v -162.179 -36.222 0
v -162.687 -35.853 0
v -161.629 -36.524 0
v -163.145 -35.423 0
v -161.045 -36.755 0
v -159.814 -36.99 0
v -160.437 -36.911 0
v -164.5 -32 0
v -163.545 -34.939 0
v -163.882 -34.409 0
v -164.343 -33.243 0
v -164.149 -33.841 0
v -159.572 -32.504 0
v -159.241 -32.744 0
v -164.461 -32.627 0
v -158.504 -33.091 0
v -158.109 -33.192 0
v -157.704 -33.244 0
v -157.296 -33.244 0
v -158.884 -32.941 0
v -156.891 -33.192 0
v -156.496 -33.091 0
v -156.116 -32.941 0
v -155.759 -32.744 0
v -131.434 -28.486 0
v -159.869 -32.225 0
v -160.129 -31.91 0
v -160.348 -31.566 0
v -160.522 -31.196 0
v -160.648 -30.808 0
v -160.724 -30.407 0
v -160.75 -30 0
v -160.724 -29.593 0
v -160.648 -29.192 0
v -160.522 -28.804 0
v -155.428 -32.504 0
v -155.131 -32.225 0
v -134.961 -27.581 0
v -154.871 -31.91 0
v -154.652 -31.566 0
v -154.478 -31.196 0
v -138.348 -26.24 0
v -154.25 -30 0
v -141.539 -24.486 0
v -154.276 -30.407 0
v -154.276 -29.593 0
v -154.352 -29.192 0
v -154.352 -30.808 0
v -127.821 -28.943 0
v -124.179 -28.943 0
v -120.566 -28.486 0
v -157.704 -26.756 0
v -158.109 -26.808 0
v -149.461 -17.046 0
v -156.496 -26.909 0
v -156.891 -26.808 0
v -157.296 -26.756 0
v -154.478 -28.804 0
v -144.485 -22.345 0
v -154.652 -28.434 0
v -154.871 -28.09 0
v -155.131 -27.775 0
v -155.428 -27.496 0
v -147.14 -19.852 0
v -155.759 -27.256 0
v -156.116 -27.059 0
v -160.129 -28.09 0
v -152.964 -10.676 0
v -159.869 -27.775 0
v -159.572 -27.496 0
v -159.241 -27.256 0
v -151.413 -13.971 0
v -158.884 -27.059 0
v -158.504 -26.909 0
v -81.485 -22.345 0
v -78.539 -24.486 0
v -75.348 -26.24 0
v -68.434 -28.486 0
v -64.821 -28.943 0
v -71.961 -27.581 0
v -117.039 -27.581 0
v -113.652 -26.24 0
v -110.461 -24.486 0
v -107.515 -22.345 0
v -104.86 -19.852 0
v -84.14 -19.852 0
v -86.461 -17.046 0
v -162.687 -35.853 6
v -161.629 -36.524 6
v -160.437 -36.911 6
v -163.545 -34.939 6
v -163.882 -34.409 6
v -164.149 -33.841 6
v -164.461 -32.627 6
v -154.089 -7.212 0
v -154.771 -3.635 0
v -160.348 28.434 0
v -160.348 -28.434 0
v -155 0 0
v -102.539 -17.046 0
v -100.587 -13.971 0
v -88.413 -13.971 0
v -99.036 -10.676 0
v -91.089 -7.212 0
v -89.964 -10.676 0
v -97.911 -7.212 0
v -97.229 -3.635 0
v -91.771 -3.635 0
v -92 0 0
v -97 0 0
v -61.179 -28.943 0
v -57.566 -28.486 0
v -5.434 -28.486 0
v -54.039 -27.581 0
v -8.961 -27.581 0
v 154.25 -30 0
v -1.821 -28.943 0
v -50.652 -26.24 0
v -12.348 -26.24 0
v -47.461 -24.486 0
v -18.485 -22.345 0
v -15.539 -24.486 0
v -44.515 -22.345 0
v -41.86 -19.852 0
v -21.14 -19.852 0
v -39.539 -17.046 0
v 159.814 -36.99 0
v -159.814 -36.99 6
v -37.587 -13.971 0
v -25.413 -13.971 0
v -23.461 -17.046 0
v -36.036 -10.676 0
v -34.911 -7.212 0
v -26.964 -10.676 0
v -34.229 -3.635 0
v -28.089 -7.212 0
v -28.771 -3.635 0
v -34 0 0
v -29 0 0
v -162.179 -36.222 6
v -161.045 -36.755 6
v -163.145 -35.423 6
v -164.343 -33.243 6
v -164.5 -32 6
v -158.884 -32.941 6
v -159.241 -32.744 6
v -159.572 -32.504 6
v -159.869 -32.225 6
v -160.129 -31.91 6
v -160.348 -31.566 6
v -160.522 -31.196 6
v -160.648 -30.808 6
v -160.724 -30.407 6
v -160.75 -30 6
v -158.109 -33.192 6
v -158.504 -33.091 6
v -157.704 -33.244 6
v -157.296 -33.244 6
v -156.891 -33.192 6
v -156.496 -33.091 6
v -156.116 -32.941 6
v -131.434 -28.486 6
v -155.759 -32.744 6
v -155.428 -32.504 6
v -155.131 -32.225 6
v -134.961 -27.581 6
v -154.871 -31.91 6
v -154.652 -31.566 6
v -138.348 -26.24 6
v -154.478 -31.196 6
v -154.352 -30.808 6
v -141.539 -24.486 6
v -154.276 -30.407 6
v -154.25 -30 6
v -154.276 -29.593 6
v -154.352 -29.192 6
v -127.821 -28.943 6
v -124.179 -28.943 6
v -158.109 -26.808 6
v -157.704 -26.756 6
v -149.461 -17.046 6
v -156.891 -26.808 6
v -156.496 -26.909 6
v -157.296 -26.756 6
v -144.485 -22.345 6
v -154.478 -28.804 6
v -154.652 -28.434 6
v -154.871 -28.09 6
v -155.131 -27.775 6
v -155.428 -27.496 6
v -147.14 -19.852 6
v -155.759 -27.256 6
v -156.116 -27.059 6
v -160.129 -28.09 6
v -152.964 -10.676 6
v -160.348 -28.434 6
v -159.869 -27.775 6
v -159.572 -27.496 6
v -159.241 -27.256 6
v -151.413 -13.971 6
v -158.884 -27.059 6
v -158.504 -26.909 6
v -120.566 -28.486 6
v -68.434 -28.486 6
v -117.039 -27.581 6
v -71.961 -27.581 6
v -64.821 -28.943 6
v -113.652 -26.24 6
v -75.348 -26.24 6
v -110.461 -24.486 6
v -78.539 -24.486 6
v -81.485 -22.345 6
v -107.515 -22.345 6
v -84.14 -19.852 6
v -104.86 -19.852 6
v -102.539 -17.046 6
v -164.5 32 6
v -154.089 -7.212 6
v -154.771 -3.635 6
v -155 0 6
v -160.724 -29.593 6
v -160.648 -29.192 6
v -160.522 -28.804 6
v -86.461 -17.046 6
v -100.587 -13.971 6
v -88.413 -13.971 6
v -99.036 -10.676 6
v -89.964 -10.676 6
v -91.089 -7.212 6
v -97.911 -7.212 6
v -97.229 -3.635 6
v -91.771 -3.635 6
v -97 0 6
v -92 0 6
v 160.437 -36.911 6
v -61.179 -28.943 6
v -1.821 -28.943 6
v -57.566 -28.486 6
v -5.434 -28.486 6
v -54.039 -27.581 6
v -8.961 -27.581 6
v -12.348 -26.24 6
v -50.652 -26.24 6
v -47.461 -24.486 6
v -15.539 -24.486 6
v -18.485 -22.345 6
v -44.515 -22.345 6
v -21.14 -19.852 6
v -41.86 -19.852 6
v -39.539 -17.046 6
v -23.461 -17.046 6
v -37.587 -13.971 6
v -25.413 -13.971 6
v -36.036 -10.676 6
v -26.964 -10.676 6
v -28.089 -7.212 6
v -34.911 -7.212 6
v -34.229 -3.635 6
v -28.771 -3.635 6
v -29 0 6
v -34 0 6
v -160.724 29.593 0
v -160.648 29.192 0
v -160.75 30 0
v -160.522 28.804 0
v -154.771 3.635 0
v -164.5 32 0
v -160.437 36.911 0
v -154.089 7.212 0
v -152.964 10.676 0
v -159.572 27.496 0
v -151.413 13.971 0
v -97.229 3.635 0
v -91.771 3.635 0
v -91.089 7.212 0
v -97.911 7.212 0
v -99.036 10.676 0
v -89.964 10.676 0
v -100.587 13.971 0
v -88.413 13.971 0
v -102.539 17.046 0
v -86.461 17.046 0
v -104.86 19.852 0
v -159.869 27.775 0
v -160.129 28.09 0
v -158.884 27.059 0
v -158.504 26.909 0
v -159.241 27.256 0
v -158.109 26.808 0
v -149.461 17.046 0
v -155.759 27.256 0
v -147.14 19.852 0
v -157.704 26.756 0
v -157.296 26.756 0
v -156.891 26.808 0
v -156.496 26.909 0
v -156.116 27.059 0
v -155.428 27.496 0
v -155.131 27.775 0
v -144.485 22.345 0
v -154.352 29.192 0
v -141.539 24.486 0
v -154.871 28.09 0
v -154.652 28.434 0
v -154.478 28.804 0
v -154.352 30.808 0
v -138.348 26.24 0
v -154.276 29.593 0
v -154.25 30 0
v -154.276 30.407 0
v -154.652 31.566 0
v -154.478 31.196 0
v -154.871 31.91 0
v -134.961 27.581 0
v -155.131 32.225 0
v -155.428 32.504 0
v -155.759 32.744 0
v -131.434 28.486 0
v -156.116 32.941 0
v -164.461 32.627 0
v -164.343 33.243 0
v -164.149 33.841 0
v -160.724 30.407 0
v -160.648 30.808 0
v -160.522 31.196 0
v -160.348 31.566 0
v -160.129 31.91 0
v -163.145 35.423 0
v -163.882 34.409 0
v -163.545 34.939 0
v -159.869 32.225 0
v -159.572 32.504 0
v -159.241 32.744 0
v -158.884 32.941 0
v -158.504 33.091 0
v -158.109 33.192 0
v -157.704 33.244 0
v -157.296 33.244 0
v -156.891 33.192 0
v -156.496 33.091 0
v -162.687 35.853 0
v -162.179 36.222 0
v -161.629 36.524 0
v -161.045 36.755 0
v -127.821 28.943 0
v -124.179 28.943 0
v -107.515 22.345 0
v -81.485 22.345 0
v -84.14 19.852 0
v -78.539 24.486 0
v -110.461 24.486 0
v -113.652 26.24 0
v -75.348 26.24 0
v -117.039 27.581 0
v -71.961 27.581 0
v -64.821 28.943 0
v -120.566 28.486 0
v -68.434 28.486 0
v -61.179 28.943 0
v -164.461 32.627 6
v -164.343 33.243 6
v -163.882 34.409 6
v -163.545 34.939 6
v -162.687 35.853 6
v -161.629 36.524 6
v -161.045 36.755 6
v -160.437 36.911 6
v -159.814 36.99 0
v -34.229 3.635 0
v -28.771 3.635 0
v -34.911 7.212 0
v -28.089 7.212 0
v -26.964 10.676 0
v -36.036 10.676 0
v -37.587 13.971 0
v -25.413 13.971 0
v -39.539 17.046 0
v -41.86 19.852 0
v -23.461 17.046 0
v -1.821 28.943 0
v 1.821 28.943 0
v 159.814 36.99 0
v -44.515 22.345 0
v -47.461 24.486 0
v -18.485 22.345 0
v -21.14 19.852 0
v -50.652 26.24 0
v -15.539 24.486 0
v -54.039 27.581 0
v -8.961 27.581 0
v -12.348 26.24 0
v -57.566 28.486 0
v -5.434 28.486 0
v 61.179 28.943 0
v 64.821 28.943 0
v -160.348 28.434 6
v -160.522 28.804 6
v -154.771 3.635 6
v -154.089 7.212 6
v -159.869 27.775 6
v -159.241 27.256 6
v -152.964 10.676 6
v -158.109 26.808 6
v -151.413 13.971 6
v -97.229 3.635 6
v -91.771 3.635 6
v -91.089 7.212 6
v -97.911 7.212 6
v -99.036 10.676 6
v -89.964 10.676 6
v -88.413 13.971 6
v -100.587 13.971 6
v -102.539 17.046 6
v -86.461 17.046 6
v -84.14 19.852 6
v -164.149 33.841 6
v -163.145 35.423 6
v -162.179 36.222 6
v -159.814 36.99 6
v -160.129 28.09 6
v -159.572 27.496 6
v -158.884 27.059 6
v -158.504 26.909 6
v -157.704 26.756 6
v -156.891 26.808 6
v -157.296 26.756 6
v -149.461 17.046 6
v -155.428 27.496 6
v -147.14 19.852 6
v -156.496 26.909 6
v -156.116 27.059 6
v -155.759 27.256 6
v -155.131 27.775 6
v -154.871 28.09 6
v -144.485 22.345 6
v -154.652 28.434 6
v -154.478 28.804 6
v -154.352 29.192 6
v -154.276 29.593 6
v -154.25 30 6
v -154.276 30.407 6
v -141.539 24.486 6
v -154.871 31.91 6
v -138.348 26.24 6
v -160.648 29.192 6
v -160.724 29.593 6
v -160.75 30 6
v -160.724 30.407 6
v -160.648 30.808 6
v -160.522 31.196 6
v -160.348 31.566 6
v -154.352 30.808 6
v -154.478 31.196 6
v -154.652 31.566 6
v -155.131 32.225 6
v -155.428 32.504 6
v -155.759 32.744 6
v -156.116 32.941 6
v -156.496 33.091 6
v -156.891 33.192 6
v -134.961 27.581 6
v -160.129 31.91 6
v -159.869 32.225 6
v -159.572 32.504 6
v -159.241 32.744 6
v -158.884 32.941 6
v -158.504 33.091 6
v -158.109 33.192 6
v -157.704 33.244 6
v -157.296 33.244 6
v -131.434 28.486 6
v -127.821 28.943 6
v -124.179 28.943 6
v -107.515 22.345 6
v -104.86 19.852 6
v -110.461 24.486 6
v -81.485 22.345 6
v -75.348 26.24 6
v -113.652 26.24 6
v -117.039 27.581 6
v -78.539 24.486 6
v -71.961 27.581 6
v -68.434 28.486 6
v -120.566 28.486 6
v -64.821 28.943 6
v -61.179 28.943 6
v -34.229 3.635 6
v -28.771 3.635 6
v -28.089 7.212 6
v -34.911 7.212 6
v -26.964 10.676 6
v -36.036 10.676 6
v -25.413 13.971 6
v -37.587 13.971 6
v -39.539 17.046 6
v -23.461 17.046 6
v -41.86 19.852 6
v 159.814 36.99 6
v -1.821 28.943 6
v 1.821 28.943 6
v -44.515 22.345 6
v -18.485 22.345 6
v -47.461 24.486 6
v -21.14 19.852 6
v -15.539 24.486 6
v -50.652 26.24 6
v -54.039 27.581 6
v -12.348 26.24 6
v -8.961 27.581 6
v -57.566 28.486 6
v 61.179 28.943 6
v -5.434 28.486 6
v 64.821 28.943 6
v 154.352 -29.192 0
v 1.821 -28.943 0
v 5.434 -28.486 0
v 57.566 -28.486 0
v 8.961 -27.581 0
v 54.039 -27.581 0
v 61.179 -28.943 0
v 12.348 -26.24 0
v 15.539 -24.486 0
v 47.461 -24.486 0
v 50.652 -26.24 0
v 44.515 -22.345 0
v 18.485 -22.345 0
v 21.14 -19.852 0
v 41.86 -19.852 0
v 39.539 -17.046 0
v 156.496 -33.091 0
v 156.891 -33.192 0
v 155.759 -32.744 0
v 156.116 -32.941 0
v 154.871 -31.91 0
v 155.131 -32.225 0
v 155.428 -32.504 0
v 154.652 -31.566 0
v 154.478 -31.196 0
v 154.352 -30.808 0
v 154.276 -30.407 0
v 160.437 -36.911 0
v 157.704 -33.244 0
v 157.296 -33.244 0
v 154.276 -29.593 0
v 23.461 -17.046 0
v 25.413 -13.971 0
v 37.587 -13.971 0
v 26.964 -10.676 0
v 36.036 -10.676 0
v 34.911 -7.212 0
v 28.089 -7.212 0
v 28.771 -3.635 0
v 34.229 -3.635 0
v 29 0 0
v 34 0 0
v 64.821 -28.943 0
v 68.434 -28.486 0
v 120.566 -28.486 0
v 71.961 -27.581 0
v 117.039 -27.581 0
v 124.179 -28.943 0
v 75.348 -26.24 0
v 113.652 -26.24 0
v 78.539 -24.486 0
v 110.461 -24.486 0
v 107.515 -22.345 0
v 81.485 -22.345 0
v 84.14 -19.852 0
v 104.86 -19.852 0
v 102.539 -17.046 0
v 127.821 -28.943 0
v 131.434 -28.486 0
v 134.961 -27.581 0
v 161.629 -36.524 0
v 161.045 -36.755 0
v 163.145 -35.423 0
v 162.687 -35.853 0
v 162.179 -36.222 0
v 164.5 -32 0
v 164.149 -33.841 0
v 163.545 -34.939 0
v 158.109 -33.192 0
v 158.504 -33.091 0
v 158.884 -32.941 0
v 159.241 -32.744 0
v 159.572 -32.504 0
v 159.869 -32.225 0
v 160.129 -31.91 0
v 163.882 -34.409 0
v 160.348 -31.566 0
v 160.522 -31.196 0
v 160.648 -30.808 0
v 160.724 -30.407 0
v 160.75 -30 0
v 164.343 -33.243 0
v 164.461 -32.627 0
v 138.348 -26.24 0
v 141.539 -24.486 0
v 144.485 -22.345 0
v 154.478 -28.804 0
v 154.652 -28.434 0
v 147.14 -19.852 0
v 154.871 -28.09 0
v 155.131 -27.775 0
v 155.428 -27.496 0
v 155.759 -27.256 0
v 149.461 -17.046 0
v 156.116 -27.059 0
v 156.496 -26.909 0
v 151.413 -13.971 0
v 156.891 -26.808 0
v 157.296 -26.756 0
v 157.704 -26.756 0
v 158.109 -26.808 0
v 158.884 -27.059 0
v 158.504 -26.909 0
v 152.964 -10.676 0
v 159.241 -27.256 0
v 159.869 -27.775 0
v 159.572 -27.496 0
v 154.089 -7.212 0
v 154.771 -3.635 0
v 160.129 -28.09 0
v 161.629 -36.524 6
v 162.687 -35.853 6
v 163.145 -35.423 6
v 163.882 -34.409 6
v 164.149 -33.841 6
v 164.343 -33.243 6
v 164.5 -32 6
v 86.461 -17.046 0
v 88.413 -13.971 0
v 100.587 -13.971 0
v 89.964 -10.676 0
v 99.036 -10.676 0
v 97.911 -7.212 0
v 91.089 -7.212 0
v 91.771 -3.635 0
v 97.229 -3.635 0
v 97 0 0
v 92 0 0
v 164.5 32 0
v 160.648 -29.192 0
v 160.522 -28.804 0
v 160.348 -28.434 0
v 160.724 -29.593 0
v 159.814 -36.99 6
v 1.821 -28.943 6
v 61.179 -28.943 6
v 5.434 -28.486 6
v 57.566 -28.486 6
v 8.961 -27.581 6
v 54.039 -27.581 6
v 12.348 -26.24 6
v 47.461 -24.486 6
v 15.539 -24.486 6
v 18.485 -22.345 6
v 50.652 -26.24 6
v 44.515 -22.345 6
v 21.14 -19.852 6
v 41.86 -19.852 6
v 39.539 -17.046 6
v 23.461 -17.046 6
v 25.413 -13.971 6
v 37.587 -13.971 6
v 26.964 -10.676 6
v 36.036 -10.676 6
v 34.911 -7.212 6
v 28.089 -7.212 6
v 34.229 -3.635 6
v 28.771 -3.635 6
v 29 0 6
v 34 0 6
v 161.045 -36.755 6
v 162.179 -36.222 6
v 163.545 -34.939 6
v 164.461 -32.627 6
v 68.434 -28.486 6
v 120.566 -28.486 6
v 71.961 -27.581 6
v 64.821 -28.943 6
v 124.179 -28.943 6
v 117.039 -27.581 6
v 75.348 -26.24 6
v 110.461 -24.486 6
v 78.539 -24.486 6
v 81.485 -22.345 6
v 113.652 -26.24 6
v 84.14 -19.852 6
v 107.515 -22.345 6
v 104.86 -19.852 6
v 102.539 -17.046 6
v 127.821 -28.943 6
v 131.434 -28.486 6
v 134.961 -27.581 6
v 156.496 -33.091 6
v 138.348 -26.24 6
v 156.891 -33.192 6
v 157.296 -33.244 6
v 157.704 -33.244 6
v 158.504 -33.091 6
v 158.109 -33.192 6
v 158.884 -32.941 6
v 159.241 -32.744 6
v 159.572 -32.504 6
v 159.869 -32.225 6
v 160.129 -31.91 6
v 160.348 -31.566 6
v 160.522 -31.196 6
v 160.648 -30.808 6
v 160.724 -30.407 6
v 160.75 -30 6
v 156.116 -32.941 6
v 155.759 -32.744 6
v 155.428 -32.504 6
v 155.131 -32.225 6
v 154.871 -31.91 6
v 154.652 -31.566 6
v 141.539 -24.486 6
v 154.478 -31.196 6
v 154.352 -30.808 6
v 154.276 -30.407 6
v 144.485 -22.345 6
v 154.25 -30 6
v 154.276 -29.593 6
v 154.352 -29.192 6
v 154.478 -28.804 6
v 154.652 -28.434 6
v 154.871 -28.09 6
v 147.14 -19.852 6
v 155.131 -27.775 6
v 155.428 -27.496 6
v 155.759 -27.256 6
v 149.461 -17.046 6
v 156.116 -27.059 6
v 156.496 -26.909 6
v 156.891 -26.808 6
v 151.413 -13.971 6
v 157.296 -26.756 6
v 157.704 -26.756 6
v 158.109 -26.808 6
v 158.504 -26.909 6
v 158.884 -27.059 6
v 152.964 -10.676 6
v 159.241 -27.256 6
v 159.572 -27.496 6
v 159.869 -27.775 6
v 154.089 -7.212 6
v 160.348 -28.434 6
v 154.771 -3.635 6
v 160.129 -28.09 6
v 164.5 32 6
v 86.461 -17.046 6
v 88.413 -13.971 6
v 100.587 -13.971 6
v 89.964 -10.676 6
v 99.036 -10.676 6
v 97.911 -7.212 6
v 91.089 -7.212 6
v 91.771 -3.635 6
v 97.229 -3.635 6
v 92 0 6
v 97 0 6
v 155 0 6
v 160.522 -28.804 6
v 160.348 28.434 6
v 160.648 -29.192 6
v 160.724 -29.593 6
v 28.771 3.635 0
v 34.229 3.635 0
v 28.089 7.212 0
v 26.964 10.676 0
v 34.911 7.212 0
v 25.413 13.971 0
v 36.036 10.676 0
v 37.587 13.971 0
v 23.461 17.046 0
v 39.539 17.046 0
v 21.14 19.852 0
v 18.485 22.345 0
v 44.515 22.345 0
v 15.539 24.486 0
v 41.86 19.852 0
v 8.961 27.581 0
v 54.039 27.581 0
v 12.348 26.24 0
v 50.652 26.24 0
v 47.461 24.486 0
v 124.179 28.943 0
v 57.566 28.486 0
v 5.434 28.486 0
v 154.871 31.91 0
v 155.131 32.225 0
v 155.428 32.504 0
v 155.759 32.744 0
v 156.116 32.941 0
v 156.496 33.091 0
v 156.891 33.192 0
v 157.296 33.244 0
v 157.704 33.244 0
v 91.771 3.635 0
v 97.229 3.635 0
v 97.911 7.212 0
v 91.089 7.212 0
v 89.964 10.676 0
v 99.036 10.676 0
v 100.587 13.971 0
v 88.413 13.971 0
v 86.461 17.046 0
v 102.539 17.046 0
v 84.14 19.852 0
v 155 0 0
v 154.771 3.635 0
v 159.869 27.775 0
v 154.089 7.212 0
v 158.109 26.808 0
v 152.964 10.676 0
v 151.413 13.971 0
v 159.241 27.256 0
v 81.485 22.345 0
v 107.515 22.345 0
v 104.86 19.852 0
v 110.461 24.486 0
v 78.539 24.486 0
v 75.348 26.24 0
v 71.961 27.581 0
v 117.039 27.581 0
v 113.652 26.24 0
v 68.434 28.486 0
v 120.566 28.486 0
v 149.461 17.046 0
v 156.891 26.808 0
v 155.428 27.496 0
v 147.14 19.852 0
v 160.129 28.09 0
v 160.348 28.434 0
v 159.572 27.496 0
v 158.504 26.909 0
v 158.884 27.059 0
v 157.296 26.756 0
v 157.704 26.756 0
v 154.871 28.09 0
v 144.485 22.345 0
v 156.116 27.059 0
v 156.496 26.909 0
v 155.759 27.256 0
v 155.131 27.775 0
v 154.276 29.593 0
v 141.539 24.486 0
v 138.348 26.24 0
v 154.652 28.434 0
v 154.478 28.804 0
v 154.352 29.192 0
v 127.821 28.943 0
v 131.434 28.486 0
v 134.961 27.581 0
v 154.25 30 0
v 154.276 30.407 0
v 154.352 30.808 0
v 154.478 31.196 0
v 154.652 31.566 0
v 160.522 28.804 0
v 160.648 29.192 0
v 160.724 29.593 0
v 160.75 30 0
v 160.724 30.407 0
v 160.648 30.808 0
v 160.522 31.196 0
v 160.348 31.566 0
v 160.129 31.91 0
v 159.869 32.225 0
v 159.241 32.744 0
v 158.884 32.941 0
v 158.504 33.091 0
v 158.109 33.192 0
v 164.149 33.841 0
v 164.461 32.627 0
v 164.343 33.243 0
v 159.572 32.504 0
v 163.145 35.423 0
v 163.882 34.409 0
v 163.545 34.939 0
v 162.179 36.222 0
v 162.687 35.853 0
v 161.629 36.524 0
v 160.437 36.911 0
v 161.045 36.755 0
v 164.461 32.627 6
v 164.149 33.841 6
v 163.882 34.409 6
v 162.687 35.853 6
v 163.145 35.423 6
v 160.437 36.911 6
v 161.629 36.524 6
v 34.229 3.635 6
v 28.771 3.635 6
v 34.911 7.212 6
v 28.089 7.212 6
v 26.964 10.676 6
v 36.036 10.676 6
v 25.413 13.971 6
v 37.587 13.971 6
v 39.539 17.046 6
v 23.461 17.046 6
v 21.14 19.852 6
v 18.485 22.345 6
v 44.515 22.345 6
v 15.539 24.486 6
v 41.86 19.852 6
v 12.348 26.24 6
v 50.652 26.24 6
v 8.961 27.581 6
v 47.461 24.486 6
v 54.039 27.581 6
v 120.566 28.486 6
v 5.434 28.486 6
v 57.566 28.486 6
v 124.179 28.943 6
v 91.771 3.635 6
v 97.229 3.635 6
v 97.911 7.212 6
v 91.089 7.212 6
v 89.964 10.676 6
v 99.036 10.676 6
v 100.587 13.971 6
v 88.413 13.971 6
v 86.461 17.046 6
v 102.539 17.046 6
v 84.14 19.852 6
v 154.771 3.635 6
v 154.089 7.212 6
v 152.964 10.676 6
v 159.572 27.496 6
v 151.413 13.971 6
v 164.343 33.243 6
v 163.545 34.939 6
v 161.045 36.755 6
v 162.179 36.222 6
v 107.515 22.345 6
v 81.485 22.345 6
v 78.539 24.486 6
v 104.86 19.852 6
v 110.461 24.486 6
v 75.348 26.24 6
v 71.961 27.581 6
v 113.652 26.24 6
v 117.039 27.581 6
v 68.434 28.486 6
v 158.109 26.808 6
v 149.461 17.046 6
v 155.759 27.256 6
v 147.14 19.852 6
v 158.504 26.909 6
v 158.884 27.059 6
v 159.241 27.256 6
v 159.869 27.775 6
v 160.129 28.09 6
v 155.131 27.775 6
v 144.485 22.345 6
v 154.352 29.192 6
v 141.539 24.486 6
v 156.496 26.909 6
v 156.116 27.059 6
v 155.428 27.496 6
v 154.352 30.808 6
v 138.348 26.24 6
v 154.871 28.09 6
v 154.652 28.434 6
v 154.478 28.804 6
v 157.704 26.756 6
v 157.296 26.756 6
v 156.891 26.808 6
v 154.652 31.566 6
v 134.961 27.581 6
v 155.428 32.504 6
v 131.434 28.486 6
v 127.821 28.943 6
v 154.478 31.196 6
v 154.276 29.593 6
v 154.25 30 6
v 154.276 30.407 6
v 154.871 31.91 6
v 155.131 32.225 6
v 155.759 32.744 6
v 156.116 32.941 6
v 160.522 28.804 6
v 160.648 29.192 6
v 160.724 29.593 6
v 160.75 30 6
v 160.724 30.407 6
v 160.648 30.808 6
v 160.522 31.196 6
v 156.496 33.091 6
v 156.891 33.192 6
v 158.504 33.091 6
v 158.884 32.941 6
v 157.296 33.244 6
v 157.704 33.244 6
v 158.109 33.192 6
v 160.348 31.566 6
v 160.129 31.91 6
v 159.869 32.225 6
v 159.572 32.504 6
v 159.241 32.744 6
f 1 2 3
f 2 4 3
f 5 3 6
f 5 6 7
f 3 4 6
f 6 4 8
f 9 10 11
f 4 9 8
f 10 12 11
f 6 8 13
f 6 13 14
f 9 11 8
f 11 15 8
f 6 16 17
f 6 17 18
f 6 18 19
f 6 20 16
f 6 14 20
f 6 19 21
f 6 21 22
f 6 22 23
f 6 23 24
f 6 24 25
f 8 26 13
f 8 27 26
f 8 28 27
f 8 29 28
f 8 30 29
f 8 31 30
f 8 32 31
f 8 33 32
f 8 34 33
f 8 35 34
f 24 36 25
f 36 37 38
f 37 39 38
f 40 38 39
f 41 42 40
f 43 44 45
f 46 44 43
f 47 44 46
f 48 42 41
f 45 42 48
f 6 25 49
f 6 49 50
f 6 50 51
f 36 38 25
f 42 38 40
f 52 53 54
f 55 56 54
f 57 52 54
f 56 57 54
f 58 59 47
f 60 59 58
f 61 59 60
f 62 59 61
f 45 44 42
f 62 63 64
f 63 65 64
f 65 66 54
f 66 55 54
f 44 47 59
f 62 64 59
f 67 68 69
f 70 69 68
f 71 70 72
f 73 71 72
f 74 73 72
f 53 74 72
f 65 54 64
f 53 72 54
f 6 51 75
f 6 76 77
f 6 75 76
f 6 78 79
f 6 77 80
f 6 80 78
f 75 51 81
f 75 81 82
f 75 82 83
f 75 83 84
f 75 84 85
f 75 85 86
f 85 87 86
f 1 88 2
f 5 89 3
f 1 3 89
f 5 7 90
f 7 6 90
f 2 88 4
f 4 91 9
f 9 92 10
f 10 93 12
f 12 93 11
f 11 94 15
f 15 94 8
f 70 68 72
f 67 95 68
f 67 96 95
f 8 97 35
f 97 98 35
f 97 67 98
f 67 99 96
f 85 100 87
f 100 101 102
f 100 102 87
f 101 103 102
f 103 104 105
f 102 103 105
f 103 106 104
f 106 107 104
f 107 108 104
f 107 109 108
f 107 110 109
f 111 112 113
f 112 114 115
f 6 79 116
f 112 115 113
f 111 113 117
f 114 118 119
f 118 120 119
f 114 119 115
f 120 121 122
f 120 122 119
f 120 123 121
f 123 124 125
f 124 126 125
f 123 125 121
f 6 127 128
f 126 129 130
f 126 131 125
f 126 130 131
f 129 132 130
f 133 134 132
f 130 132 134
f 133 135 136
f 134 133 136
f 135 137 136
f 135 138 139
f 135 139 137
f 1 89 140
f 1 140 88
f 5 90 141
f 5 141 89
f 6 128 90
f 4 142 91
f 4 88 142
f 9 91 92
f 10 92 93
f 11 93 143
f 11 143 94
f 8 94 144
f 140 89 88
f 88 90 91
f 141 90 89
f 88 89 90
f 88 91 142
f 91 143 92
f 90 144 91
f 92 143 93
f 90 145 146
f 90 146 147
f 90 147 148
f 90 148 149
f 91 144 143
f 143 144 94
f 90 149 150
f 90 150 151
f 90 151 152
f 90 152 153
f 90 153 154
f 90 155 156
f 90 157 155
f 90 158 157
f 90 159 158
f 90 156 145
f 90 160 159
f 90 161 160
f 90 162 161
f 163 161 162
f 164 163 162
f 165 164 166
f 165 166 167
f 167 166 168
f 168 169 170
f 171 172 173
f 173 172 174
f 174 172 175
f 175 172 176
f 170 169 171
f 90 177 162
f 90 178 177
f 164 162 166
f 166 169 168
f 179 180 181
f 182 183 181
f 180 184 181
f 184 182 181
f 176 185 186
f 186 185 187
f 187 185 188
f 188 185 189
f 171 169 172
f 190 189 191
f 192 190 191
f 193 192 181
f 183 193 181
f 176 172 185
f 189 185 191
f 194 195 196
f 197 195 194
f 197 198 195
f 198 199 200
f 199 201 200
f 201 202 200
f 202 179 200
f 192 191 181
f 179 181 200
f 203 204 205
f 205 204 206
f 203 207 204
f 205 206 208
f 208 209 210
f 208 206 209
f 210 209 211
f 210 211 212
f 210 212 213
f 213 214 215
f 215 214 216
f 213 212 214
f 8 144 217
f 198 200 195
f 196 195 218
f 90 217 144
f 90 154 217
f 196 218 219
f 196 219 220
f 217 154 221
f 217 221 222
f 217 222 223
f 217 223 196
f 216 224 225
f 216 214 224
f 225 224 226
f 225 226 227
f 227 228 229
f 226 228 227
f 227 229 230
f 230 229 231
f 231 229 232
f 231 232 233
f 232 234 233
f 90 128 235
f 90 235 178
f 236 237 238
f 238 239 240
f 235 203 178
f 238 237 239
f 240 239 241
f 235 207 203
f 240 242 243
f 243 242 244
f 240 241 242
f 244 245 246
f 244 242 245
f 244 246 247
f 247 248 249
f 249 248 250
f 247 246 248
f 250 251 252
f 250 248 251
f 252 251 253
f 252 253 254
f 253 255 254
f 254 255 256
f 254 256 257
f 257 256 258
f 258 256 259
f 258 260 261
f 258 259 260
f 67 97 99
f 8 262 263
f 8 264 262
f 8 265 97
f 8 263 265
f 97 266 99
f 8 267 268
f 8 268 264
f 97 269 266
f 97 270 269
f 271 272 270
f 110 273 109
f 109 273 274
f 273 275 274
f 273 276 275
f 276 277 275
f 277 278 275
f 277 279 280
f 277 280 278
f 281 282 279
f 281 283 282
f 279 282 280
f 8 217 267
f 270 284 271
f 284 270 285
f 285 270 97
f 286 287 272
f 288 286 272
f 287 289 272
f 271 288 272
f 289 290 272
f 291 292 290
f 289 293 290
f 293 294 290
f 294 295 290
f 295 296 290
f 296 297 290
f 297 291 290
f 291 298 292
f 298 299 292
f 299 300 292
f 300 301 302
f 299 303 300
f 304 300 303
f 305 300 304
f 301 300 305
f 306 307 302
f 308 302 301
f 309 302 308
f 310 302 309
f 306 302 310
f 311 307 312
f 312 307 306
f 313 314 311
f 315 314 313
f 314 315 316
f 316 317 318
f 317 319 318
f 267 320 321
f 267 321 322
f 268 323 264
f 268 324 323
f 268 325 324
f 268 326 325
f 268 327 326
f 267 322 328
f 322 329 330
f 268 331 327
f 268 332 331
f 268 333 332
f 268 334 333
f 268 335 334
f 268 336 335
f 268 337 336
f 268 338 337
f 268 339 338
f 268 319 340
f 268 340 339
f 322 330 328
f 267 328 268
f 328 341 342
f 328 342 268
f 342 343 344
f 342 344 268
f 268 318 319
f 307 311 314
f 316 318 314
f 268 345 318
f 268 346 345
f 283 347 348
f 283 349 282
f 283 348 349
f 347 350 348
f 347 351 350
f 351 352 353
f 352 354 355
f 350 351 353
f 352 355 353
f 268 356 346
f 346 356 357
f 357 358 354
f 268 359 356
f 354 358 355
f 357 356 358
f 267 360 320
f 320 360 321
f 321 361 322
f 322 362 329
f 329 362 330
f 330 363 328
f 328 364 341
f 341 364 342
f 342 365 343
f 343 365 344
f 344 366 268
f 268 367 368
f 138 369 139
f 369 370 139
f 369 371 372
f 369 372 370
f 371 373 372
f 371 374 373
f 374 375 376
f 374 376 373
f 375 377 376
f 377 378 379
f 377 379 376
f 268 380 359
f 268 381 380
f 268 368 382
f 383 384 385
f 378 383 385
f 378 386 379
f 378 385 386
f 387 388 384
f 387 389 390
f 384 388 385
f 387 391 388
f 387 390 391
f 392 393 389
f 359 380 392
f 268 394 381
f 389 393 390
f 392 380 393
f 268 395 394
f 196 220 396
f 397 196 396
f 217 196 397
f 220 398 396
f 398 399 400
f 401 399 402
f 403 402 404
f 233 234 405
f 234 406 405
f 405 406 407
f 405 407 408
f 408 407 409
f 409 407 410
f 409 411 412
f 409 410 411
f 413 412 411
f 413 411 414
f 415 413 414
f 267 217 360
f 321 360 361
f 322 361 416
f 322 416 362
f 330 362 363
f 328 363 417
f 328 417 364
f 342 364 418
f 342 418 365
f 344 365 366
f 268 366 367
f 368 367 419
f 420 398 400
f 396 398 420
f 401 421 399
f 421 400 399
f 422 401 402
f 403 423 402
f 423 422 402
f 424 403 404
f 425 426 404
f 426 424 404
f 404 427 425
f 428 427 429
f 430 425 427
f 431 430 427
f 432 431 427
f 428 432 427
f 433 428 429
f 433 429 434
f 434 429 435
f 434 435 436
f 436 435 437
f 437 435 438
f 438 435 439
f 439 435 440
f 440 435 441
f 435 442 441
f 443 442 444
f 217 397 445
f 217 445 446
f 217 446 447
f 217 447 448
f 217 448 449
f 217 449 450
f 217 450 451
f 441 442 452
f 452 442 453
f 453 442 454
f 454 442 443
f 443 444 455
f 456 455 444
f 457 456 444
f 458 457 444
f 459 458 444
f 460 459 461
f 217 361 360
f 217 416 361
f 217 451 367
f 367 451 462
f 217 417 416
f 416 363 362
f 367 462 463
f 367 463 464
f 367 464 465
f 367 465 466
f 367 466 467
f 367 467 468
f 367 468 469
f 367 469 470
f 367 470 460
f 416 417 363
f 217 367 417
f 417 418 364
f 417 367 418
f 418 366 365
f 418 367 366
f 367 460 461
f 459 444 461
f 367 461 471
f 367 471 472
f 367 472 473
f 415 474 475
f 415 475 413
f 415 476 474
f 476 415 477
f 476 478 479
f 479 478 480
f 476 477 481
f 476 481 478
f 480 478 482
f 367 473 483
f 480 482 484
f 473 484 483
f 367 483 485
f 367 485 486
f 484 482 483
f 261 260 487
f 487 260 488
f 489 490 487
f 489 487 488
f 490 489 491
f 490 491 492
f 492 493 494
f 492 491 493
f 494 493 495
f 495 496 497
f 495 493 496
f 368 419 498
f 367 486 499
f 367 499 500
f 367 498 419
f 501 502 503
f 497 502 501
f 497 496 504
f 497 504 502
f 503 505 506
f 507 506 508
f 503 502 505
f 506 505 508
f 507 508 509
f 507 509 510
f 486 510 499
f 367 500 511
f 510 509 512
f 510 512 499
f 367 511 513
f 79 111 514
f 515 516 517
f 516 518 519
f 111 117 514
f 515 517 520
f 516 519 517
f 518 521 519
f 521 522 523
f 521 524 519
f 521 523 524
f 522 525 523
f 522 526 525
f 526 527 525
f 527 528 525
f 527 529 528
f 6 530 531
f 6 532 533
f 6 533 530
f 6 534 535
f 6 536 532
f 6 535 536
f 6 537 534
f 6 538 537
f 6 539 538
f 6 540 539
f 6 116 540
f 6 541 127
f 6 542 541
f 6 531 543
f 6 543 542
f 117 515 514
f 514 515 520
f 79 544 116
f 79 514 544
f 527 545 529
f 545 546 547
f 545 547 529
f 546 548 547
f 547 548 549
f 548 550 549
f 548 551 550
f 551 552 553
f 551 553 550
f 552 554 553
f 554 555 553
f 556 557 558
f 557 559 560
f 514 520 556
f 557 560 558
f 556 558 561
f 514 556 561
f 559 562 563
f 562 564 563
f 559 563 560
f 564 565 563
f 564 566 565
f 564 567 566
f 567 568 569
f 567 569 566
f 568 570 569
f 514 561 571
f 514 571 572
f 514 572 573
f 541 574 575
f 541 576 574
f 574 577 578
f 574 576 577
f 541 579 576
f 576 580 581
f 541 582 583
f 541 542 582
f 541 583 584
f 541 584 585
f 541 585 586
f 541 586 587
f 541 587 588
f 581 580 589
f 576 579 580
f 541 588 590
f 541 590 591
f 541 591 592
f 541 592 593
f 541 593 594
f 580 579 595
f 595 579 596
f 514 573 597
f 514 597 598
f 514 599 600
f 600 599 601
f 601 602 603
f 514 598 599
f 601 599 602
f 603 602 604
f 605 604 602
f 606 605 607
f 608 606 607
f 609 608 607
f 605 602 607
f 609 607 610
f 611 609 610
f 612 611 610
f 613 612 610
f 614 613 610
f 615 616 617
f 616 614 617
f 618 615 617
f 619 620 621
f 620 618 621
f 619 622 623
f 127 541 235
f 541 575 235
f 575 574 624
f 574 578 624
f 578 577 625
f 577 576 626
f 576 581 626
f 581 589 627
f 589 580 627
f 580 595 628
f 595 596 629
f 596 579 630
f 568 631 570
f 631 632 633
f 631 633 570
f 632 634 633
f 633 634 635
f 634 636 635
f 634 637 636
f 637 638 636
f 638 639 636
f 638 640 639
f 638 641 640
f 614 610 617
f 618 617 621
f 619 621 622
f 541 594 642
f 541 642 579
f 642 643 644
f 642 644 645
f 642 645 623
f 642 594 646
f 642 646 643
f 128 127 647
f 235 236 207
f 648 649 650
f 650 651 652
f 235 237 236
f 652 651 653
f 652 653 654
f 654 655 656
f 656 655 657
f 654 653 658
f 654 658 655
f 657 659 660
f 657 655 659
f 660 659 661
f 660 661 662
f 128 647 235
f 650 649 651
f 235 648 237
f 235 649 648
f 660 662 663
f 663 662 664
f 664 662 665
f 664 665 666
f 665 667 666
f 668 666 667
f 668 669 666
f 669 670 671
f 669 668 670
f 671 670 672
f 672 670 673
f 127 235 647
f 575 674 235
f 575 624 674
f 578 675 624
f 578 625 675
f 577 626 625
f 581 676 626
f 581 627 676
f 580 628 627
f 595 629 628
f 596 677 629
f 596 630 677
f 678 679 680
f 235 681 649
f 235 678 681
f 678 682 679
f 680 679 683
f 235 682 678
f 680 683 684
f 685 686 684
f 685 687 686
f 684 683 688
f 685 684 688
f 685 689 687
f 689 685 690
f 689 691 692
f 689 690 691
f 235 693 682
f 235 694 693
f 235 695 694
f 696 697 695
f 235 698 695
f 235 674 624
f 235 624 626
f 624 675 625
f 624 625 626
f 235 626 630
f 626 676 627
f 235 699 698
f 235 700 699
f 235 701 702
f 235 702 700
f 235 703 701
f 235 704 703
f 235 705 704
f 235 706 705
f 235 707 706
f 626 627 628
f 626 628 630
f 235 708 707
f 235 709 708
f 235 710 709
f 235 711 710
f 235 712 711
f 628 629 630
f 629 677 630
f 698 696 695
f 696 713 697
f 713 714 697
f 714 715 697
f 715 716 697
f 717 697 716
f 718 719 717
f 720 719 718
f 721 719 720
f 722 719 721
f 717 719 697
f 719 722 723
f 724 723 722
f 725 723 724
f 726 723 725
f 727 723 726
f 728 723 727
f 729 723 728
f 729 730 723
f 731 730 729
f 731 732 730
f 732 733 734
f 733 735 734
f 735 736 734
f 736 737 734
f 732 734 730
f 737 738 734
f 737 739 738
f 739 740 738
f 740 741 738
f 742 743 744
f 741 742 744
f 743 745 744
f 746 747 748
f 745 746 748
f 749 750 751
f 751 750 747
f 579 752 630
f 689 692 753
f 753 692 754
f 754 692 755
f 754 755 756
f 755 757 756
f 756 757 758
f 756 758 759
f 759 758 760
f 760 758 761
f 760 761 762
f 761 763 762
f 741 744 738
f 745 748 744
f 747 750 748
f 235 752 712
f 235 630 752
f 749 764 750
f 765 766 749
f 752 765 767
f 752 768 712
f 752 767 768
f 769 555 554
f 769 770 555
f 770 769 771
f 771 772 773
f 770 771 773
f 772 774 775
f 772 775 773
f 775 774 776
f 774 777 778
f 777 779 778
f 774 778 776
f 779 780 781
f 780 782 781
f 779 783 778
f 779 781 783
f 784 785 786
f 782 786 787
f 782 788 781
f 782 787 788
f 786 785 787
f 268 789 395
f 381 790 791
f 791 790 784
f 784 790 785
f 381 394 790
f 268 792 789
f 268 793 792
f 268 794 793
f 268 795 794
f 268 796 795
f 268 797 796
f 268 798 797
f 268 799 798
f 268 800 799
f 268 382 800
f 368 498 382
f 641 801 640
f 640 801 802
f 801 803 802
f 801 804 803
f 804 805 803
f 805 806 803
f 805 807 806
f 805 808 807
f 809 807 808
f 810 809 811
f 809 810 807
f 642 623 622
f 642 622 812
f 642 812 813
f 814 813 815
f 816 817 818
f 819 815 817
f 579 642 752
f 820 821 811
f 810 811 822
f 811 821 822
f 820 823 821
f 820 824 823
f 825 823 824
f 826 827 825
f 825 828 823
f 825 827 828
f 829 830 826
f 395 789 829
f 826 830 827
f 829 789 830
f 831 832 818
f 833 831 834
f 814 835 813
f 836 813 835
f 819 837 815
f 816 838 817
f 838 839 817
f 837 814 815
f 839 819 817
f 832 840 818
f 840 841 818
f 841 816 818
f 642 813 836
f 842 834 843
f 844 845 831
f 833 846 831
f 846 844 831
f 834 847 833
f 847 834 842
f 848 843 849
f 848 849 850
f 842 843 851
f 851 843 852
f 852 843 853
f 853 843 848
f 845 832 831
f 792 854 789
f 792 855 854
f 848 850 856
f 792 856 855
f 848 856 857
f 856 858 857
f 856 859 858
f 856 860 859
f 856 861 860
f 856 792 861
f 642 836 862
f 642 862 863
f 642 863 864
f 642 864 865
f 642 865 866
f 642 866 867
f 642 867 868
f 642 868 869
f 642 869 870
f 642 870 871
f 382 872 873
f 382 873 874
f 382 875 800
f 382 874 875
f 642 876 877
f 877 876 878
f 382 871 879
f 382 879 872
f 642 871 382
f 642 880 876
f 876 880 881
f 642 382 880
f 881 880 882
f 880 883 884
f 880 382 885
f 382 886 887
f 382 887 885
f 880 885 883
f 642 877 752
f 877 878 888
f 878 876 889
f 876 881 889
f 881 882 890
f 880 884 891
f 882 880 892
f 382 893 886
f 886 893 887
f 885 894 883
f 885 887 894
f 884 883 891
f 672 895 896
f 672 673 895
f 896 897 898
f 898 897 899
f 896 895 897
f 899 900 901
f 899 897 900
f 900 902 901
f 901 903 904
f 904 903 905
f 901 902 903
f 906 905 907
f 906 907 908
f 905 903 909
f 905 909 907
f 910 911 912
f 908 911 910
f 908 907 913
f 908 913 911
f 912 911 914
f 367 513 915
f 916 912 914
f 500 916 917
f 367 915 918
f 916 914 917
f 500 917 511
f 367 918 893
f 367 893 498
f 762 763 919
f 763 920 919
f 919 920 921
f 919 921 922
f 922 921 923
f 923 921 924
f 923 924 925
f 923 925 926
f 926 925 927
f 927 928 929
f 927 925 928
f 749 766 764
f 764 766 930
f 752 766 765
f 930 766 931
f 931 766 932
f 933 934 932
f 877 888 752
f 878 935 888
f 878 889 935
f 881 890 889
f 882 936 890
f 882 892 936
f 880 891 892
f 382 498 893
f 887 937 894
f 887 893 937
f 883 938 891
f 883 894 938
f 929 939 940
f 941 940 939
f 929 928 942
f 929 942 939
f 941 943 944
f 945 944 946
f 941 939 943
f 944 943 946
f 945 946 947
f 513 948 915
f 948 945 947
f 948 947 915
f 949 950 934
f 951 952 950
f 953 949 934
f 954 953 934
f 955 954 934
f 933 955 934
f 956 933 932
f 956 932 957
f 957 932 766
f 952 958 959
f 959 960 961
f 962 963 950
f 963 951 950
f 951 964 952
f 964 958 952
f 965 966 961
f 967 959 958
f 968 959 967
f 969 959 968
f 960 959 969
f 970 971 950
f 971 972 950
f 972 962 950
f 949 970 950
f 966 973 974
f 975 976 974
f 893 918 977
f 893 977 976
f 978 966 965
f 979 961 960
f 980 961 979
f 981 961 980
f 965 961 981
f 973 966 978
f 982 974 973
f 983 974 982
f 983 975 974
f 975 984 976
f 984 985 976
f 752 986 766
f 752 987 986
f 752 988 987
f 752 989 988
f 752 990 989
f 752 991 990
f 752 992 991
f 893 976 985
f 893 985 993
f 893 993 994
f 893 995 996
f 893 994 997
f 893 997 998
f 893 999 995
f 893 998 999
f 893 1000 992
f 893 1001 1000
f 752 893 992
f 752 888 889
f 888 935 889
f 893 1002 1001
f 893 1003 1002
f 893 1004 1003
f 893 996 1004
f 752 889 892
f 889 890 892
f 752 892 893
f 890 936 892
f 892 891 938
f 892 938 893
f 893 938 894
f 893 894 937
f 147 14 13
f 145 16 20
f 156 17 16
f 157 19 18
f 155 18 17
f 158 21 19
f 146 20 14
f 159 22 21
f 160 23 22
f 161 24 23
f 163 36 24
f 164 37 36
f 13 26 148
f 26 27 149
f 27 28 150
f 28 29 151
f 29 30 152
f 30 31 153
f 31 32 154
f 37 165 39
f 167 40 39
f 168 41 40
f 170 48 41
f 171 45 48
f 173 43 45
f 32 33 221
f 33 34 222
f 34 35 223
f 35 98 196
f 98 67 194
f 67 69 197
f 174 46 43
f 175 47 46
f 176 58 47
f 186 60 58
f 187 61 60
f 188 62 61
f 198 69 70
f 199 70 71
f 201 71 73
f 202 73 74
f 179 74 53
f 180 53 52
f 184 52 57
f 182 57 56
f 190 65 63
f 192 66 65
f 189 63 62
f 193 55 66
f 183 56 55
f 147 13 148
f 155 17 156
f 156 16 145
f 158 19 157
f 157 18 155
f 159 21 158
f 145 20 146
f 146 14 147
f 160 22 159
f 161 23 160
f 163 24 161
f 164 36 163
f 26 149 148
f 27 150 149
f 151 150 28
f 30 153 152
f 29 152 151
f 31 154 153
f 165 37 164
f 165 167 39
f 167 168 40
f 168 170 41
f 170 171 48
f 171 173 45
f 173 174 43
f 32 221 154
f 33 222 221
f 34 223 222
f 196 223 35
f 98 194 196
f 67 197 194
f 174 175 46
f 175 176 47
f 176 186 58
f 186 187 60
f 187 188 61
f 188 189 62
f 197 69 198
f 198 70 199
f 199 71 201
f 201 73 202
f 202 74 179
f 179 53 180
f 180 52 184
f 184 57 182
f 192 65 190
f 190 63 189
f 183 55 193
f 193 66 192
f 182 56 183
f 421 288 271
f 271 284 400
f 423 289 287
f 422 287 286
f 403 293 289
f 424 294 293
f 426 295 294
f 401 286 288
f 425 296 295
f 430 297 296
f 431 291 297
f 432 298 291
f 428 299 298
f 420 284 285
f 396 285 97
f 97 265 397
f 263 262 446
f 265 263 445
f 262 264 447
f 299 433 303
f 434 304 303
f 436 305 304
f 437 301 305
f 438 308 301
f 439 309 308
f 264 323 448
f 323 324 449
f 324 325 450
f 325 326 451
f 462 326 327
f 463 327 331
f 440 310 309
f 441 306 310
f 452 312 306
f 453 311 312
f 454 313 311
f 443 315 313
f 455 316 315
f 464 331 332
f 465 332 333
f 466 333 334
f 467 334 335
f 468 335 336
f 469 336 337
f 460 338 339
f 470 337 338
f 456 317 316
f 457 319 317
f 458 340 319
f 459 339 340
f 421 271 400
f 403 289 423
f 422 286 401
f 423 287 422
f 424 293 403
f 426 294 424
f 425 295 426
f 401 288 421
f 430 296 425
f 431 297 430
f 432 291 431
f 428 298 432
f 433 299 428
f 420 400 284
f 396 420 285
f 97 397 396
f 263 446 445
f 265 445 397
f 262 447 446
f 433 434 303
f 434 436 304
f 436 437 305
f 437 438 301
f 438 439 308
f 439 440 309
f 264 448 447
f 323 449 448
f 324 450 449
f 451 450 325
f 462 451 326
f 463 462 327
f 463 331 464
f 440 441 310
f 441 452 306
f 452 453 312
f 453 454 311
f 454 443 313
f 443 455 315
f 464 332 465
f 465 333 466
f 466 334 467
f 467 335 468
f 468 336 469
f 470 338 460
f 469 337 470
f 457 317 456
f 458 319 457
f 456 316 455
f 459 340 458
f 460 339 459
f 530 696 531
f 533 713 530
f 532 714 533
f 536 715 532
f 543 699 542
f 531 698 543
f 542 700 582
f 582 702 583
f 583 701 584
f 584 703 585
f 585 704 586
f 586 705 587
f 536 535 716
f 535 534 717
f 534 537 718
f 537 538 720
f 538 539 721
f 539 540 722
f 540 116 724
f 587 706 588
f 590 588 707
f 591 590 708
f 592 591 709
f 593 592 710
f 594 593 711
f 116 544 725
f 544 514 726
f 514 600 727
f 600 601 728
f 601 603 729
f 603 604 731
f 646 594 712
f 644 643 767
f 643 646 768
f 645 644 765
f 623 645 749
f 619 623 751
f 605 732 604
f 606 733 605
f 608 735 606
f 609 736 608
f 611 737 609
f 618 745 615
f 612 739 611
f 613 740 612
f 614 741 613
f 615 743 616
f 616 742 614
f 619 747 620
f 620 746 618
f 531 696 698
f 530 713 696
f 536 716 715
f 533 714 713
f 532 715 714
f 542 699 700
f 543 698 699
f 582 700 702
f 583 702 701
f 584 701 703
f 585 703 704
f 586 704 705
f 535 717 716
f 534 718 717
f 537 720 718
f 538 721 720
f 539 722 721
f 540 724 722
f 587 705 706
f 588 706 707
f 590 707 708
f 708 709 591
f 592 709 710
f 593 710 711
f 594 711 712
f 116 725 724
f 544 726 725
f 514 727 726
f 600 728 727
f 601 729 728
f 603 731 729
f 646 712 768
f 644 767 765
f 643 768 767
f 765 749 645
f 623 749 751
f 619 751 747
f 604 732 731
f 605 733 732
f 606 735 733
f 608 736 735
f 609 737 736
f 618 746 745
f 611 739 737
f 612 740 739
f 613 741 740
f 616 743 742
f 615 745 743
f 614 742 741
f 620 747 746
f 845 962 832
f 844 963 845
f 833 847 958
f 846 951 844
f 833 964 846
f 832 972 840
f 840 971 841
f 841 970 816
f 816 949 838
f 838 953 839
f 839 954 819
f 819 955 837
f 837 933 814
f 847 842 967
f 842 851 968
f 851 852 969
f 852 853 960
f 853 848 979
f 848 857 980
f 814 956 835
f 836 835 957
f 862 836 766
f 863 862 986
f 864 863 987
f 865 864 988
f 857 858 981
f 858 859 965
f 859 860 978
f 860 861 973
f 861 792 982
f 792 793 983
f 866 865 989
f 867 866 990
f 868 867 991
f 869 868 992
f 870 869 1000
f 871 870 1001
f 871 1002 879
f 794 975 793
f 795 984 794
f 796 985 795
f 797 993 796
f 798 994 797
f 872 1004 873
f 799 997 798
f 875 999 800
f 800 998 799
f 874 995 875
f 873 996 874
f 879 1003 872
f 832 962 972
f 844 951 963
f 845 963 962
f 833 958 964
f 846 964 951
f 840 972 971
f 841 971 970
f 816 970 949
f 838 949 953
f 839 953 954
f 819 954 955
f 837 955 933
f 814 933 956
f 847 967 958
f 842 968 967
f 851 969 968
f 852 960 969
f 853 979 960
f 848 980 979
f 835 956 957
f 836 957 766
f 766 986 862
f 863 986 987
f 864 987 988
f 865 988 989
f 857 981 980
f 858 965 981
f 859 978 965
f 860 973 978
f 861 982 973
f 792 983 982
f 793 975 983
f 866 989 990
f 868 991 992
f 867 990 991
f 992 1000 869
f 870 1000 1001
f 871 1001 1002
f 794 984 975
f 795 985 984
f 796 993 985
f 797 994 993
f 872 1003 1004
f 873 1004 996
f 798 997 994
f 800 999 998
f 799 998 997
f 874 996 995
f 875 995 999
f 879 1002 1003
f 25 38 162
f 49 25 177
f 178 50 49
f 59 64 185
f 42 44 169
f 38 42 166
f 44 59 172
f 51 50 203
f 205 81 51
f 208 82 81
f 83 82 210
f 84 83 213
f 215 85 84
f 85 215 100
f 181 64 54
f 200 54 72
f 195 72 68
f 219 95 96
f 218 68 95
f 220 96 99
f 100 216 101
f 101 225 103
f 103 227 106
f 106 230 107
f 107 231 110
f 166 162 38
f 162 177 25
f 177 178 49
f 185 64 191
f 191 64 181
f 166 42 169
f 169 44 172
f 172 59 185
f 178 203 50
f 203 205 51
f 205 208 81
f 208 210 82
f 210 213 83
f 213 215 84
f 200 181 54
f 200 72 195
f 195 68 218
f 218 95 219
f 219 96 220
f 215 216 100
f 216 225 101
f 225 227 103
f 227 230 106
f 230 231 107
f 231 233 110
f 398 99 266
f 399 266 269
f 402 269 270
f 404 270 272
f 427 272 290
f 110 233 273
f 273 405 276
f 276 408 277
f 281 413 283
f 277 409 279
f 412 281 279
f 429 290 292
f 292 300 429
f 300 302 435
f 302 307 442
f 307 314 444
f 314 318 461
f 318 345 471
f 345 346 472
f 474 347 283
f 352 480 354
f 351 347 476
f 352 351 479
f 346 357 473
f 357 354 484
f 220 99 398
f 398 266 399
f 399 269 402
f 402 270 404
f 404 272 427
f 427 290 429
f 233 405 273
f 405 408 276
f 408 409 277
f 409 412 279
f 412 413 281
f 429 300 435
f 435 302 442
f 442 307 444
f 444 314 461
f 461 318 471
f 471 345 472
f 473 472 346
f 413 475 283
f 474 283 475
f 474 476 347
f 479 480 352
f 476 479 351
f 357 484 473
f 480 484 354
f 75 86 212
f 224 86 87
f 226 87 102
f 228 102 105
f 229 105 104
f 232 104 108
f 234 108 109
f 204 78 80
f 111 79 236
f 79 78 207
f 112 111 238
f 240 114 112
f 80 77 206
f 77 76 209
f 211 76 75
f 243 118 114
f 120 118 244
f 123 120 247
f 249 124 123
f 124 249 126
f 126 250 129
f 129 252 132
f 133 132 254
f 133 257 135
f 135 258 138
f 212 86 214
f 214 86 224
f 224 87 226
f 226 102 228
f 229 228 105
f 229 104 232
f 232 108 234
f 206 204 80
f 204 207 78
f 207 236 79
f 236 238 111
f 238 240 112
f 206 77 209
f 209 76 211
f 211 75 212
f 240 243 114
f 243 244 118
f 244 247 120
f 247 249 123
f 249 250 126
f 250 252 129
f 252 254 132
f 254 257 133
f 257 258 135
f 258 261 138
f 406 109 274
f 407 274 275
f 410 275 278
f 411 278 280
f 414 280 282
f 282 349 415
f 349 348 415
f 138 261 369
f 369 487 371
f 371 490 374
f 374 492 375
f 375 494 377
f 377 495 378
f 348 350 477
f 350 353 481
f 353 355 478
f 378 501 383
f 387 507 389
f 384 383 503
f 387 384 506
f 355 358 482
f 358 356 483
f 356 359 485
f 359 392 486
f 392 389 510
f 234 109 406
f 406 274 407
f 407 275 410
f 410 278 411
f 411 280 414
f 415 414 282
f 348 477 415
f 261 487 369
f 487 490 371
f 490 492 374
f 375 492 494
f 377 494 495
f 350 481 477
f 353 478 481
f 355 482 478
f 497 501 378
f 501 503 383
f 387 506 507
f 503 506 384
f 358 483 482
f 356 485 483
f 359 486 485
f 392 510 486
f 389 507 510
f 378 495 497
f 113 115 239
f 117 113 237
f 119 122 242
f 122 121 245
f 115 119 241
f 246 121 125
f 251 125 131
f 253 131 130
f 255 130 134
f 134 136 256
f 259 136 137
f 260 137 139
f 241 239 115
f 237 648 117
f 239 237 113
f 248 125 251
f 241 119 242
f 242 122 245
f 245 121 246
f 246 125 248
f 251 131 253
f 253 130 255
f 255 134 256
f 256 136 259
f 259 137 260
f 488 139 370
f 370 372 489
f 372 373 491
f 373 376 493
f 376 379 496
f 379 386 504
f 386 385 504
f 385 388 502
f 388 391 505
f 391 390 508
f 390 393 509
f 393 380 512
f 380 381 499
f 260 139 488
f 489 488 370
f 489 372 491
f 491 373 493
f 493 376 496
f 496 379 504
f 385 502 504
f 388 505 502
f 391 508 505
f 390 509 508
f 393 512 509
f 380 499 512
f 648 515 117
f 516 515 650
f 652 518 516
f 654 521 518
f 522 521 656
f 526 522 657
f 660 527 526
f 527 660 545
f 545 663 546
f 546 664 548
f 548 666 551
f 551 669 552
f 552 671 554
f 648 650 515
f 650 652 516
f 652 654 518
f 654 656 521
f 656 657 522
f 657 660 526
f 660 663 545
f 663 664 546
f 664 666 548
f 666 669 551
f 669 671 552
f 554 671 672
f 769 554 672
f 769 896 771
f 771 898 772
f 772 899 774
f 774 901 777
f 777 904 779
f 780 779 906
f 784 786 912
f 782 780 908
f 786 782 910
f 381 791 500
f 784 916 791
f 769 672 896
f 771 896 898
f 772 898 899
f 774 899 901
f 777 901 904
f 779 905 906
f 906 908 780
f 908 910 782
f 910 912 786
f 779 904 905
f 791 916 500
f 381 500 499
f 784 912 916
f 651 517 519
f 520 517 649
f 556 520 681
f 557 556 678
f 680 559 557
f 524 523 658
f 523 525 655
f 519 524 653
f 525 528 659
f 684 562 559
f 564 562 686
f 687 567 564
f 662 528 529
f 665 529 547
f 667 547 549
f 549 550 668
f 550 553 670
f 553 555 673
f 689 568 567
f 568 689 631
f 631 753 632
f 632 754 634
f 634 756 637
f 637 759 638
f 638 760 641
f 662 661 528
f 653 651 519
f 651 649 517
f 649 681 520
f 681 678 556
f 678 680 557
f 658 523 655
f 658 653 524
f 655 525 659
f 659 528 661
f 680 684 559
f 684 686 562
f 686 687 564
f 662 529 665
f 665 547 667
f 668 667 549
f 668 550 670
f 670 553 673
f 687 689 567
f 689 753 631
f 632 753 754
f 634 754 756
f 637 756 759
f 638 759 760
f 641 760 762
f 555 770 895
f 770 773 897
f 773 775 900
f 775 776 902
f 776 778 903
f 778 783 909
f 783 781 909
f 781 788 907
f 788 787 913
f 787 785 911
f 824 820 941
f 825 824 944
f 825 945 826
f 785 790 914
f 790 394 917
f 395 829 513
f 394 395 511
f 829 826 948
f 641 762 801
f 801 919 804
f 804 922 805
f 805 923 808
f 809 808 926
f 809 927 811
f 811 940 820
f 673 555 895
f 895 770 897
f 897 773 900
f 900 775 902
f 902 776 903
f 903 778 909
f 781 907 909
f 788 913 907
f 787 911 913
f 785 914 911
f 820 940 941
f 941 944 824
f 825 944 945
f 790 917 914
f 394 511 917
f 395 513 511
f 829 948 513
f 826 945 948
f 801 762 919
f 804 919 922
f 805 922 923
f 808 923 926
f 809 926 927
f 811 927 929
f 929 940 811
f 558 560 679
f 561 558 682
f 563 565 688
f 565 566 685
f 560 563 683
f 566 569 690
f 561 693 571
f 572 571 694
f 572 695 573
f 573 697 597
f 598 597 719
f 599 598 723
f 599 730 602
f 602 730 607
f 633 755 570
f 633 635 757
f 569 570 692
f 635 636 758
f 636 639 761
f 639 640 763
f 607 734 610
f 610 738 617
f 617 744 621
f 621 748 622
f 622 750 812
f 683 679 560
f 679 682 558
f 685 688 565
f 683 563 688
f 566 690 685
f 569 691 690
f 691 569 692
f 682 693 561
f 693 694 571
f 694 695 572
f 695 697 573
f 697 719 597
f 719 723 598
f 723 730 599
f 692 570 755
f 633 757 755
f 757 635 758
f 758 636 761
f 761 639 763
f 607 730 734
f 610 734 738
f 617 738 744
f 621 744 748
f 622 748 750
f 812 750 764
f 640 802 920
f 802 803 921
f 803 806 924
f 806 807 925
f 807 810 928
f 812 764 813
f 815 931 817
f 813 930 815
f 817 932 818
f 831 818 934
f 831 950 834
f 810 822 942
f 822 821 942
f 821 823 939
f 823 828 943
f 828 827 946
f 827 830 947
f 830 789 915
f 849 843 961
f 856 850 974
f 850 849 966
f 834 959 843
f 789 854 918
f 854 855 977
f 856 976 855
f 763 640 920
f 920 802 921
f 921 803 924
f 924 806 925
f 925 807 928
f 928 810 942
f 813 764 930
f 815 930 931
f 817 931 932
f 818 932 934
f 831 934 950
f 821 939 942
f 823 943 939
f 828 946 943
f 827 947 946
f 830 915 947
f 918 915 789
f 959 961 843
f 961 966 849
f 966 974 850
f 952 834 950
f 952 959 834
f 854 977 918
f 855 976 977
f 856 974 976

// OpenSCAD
$fn = 50;

difference() {
	union() {
		hull() {
			translate(v = [-159.5, 32.0, 0]) {
				cylinder(h = 6, r = 5);
			}
			translate(v = [159.5, 32.0, 0]) {
				cylinder(h = 6, r = 5);
			}
			translate(v = [-159.5, -32.0, 0]) {
				cylinder(h = 6, r = 5);
			}
			translate(v = [159.5, -32.0, 0]) {
				cylinder(h = 6, r = 5);
			}
		}
	}
	union() {
		translate(v = [-157.5, -30.0, -100.0]) {
			cylinder(h = 200, r = 3.25);
		}
		translate(v = [-157.5, 30.0, -100.0]) {
			cylinder(h = 200, r = 3.25);
		}
		translate(v = [157.5, -30.0, -100.0]) {
			cylinder(h = 200, r = 3.25);
		}
		translate(v = [157.5, 30.0, -100.0]) {
			cylinder(h = 200, r = 3.25);
		}
		translate(v = [-157.5, -30.0, -100.0]) {
			cylinder(h = 200, r = 1.8);
		}
		translate(v = [-157.5, 30.0, -100.0]) {
			cylinder(h = 200, r = 1.8);
		}
		translate(v = [157.5, -30.0, -100.0]) {
			cylinder(h = 200, r = 1.8);
		}
		translate(v = [157.5, 30.0, -100.0]) {
			cylinder(h = 200, r = 1.8);
		}
		translate(v = [-126.0, 0, 0.0]) {
			cylinder(h = 6, r = 29.0);
		}
		translate(v = [-63.0, 0, 0.0]) {
			cylinder(h = 6, r = 29.0);
		}
		cylinder(h = 6, r = 29.0);
		translate(v = [63.0, 0, 0.0]) {
			cylinder(h = 6, r = 29.0);
		}
		translate(v = [126.0, 0, 0.0]) {
			cylinder(h = 6, r = 29.0);
		}
	}
}
